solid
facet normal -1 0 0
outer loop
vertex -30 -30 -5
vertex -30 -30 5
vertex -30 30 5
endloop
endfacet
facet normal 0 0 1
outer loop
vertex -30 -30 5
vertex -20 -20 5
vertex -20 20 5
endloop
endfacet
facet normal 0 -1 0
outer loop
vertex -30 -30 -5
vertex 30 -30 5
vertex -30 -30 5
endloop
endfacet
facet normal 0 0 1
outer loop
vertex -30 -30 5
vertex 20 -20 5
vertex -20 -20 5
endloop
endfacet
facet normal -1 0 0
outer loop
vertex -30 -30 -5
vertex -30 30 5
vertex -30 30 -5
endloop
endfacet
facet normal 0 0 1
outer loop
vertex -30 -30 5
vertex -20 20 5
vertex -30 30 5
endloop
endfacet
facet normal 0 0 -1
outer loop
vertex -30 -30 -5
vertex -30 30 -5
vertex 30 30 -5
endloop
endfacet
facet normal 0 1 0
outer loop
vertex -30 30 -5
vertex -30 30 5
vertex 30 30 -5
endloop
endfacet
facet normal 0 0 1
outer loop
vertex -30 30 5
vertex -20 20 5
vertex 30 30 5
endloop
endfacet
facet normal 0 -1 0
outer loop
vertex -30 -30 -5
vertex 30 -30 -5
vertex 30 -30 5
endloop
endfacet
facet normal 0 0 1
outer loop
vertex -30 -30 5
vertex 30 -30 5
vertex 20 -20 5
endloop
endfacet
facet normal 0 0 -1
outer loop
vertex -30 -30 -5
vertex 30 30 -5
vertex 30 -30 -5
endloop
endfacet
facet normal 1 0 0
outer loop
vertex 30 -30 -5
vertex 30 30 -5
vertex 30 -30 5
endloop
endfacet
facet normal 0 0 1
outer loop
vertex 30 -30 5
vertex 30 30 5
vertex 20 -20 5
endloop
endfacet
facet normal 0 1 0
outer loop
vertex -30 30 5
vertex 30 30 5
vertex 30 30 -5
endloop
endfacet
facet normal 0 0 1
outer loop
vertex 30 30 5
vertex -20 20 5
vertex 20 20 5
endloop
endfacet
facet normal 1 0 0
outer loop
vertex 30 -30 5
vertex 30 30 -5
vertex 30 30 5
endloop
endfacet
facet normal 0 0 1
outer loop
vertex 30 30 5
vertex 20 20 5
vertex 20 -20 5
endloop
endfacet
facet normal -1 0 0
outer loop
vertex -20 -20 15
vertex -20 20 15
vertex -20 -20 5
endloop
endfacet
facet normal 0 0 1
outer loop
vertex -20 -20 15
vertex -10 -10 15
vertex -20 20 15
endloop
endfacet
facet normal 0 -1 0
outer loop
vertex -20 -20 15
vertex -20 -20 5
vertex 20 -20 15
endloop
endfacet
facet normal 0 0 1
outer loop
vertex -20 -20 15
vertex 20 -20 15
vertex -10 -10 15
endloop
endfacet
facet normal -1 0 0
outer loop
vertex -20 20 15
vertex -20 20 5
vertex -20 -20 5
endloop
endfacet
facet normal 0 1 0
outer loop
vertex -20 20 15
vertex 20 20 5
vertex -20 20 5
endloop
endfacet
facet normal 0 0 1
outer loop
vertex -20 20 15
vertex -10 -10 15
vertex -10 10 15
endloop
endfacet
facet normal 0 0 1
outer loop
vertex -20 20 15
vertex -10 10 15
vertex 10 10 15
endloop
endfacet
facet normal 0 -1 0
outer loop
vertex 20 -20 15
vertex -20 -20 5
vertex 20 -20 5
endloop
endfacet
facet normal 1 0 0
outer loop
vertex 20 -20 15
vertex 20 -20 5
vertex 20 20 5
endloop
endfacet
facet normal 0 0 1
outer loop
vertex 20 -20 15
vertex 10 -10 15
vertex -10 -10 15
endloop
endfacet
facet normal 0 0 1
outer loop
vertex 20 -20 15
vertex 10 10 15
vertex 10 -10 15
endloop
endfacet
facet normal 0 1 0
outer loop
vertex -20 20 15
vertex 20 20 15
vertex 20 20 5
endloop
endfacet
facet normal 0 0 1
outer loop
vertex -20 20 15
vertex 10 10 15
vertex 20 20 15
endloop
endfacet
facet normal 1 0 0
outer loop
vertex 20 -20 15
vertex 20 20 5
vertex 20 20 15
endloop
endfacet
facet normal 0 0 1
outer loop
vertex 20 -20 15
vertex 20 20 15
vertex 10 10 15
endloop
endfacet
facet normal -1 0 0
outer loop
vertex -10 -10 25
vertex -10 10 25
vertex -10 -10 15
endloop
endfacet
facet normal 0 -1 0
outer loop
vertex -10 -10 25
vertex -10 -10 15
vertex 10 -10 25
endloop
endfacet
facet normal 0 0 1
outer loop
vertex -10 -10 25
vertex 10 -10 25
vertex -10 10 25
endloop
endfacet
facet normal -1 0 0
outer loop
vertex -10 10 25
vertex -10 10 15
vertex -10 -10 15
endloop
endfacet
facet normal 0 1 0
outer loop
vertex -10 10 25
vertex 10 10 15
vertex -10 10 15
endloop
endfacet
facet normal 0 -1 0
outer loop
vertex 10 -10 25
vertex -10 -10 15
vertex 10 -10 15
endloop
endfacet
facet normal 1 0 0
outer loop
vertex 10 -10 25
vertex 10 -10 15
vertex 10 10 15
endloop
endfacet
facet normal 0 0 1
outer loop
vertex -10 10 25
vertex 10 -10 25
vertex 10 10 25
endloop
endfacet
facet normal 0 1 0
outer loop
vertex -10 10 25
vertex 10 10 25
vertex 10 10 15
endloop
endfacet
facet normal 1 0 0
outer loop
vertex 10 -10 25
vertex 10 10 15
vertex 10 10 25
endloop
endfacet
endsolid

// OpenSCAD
// 3段の階段状ピラミッド

// 1段目: 60mm x 60mm x 10mm
translate([0, 0, 0])
    cube([60, 60, 10], center = true);

// 2段目: 40mm x 40mm x 10mm
translate([0, 0, 10])
    cube([40, 40, 10], center = true);

// 3段目: 20mm x 20mm x 10mm
translate([0, 0, 20])
    cube([20, 20, 10], center = true);
